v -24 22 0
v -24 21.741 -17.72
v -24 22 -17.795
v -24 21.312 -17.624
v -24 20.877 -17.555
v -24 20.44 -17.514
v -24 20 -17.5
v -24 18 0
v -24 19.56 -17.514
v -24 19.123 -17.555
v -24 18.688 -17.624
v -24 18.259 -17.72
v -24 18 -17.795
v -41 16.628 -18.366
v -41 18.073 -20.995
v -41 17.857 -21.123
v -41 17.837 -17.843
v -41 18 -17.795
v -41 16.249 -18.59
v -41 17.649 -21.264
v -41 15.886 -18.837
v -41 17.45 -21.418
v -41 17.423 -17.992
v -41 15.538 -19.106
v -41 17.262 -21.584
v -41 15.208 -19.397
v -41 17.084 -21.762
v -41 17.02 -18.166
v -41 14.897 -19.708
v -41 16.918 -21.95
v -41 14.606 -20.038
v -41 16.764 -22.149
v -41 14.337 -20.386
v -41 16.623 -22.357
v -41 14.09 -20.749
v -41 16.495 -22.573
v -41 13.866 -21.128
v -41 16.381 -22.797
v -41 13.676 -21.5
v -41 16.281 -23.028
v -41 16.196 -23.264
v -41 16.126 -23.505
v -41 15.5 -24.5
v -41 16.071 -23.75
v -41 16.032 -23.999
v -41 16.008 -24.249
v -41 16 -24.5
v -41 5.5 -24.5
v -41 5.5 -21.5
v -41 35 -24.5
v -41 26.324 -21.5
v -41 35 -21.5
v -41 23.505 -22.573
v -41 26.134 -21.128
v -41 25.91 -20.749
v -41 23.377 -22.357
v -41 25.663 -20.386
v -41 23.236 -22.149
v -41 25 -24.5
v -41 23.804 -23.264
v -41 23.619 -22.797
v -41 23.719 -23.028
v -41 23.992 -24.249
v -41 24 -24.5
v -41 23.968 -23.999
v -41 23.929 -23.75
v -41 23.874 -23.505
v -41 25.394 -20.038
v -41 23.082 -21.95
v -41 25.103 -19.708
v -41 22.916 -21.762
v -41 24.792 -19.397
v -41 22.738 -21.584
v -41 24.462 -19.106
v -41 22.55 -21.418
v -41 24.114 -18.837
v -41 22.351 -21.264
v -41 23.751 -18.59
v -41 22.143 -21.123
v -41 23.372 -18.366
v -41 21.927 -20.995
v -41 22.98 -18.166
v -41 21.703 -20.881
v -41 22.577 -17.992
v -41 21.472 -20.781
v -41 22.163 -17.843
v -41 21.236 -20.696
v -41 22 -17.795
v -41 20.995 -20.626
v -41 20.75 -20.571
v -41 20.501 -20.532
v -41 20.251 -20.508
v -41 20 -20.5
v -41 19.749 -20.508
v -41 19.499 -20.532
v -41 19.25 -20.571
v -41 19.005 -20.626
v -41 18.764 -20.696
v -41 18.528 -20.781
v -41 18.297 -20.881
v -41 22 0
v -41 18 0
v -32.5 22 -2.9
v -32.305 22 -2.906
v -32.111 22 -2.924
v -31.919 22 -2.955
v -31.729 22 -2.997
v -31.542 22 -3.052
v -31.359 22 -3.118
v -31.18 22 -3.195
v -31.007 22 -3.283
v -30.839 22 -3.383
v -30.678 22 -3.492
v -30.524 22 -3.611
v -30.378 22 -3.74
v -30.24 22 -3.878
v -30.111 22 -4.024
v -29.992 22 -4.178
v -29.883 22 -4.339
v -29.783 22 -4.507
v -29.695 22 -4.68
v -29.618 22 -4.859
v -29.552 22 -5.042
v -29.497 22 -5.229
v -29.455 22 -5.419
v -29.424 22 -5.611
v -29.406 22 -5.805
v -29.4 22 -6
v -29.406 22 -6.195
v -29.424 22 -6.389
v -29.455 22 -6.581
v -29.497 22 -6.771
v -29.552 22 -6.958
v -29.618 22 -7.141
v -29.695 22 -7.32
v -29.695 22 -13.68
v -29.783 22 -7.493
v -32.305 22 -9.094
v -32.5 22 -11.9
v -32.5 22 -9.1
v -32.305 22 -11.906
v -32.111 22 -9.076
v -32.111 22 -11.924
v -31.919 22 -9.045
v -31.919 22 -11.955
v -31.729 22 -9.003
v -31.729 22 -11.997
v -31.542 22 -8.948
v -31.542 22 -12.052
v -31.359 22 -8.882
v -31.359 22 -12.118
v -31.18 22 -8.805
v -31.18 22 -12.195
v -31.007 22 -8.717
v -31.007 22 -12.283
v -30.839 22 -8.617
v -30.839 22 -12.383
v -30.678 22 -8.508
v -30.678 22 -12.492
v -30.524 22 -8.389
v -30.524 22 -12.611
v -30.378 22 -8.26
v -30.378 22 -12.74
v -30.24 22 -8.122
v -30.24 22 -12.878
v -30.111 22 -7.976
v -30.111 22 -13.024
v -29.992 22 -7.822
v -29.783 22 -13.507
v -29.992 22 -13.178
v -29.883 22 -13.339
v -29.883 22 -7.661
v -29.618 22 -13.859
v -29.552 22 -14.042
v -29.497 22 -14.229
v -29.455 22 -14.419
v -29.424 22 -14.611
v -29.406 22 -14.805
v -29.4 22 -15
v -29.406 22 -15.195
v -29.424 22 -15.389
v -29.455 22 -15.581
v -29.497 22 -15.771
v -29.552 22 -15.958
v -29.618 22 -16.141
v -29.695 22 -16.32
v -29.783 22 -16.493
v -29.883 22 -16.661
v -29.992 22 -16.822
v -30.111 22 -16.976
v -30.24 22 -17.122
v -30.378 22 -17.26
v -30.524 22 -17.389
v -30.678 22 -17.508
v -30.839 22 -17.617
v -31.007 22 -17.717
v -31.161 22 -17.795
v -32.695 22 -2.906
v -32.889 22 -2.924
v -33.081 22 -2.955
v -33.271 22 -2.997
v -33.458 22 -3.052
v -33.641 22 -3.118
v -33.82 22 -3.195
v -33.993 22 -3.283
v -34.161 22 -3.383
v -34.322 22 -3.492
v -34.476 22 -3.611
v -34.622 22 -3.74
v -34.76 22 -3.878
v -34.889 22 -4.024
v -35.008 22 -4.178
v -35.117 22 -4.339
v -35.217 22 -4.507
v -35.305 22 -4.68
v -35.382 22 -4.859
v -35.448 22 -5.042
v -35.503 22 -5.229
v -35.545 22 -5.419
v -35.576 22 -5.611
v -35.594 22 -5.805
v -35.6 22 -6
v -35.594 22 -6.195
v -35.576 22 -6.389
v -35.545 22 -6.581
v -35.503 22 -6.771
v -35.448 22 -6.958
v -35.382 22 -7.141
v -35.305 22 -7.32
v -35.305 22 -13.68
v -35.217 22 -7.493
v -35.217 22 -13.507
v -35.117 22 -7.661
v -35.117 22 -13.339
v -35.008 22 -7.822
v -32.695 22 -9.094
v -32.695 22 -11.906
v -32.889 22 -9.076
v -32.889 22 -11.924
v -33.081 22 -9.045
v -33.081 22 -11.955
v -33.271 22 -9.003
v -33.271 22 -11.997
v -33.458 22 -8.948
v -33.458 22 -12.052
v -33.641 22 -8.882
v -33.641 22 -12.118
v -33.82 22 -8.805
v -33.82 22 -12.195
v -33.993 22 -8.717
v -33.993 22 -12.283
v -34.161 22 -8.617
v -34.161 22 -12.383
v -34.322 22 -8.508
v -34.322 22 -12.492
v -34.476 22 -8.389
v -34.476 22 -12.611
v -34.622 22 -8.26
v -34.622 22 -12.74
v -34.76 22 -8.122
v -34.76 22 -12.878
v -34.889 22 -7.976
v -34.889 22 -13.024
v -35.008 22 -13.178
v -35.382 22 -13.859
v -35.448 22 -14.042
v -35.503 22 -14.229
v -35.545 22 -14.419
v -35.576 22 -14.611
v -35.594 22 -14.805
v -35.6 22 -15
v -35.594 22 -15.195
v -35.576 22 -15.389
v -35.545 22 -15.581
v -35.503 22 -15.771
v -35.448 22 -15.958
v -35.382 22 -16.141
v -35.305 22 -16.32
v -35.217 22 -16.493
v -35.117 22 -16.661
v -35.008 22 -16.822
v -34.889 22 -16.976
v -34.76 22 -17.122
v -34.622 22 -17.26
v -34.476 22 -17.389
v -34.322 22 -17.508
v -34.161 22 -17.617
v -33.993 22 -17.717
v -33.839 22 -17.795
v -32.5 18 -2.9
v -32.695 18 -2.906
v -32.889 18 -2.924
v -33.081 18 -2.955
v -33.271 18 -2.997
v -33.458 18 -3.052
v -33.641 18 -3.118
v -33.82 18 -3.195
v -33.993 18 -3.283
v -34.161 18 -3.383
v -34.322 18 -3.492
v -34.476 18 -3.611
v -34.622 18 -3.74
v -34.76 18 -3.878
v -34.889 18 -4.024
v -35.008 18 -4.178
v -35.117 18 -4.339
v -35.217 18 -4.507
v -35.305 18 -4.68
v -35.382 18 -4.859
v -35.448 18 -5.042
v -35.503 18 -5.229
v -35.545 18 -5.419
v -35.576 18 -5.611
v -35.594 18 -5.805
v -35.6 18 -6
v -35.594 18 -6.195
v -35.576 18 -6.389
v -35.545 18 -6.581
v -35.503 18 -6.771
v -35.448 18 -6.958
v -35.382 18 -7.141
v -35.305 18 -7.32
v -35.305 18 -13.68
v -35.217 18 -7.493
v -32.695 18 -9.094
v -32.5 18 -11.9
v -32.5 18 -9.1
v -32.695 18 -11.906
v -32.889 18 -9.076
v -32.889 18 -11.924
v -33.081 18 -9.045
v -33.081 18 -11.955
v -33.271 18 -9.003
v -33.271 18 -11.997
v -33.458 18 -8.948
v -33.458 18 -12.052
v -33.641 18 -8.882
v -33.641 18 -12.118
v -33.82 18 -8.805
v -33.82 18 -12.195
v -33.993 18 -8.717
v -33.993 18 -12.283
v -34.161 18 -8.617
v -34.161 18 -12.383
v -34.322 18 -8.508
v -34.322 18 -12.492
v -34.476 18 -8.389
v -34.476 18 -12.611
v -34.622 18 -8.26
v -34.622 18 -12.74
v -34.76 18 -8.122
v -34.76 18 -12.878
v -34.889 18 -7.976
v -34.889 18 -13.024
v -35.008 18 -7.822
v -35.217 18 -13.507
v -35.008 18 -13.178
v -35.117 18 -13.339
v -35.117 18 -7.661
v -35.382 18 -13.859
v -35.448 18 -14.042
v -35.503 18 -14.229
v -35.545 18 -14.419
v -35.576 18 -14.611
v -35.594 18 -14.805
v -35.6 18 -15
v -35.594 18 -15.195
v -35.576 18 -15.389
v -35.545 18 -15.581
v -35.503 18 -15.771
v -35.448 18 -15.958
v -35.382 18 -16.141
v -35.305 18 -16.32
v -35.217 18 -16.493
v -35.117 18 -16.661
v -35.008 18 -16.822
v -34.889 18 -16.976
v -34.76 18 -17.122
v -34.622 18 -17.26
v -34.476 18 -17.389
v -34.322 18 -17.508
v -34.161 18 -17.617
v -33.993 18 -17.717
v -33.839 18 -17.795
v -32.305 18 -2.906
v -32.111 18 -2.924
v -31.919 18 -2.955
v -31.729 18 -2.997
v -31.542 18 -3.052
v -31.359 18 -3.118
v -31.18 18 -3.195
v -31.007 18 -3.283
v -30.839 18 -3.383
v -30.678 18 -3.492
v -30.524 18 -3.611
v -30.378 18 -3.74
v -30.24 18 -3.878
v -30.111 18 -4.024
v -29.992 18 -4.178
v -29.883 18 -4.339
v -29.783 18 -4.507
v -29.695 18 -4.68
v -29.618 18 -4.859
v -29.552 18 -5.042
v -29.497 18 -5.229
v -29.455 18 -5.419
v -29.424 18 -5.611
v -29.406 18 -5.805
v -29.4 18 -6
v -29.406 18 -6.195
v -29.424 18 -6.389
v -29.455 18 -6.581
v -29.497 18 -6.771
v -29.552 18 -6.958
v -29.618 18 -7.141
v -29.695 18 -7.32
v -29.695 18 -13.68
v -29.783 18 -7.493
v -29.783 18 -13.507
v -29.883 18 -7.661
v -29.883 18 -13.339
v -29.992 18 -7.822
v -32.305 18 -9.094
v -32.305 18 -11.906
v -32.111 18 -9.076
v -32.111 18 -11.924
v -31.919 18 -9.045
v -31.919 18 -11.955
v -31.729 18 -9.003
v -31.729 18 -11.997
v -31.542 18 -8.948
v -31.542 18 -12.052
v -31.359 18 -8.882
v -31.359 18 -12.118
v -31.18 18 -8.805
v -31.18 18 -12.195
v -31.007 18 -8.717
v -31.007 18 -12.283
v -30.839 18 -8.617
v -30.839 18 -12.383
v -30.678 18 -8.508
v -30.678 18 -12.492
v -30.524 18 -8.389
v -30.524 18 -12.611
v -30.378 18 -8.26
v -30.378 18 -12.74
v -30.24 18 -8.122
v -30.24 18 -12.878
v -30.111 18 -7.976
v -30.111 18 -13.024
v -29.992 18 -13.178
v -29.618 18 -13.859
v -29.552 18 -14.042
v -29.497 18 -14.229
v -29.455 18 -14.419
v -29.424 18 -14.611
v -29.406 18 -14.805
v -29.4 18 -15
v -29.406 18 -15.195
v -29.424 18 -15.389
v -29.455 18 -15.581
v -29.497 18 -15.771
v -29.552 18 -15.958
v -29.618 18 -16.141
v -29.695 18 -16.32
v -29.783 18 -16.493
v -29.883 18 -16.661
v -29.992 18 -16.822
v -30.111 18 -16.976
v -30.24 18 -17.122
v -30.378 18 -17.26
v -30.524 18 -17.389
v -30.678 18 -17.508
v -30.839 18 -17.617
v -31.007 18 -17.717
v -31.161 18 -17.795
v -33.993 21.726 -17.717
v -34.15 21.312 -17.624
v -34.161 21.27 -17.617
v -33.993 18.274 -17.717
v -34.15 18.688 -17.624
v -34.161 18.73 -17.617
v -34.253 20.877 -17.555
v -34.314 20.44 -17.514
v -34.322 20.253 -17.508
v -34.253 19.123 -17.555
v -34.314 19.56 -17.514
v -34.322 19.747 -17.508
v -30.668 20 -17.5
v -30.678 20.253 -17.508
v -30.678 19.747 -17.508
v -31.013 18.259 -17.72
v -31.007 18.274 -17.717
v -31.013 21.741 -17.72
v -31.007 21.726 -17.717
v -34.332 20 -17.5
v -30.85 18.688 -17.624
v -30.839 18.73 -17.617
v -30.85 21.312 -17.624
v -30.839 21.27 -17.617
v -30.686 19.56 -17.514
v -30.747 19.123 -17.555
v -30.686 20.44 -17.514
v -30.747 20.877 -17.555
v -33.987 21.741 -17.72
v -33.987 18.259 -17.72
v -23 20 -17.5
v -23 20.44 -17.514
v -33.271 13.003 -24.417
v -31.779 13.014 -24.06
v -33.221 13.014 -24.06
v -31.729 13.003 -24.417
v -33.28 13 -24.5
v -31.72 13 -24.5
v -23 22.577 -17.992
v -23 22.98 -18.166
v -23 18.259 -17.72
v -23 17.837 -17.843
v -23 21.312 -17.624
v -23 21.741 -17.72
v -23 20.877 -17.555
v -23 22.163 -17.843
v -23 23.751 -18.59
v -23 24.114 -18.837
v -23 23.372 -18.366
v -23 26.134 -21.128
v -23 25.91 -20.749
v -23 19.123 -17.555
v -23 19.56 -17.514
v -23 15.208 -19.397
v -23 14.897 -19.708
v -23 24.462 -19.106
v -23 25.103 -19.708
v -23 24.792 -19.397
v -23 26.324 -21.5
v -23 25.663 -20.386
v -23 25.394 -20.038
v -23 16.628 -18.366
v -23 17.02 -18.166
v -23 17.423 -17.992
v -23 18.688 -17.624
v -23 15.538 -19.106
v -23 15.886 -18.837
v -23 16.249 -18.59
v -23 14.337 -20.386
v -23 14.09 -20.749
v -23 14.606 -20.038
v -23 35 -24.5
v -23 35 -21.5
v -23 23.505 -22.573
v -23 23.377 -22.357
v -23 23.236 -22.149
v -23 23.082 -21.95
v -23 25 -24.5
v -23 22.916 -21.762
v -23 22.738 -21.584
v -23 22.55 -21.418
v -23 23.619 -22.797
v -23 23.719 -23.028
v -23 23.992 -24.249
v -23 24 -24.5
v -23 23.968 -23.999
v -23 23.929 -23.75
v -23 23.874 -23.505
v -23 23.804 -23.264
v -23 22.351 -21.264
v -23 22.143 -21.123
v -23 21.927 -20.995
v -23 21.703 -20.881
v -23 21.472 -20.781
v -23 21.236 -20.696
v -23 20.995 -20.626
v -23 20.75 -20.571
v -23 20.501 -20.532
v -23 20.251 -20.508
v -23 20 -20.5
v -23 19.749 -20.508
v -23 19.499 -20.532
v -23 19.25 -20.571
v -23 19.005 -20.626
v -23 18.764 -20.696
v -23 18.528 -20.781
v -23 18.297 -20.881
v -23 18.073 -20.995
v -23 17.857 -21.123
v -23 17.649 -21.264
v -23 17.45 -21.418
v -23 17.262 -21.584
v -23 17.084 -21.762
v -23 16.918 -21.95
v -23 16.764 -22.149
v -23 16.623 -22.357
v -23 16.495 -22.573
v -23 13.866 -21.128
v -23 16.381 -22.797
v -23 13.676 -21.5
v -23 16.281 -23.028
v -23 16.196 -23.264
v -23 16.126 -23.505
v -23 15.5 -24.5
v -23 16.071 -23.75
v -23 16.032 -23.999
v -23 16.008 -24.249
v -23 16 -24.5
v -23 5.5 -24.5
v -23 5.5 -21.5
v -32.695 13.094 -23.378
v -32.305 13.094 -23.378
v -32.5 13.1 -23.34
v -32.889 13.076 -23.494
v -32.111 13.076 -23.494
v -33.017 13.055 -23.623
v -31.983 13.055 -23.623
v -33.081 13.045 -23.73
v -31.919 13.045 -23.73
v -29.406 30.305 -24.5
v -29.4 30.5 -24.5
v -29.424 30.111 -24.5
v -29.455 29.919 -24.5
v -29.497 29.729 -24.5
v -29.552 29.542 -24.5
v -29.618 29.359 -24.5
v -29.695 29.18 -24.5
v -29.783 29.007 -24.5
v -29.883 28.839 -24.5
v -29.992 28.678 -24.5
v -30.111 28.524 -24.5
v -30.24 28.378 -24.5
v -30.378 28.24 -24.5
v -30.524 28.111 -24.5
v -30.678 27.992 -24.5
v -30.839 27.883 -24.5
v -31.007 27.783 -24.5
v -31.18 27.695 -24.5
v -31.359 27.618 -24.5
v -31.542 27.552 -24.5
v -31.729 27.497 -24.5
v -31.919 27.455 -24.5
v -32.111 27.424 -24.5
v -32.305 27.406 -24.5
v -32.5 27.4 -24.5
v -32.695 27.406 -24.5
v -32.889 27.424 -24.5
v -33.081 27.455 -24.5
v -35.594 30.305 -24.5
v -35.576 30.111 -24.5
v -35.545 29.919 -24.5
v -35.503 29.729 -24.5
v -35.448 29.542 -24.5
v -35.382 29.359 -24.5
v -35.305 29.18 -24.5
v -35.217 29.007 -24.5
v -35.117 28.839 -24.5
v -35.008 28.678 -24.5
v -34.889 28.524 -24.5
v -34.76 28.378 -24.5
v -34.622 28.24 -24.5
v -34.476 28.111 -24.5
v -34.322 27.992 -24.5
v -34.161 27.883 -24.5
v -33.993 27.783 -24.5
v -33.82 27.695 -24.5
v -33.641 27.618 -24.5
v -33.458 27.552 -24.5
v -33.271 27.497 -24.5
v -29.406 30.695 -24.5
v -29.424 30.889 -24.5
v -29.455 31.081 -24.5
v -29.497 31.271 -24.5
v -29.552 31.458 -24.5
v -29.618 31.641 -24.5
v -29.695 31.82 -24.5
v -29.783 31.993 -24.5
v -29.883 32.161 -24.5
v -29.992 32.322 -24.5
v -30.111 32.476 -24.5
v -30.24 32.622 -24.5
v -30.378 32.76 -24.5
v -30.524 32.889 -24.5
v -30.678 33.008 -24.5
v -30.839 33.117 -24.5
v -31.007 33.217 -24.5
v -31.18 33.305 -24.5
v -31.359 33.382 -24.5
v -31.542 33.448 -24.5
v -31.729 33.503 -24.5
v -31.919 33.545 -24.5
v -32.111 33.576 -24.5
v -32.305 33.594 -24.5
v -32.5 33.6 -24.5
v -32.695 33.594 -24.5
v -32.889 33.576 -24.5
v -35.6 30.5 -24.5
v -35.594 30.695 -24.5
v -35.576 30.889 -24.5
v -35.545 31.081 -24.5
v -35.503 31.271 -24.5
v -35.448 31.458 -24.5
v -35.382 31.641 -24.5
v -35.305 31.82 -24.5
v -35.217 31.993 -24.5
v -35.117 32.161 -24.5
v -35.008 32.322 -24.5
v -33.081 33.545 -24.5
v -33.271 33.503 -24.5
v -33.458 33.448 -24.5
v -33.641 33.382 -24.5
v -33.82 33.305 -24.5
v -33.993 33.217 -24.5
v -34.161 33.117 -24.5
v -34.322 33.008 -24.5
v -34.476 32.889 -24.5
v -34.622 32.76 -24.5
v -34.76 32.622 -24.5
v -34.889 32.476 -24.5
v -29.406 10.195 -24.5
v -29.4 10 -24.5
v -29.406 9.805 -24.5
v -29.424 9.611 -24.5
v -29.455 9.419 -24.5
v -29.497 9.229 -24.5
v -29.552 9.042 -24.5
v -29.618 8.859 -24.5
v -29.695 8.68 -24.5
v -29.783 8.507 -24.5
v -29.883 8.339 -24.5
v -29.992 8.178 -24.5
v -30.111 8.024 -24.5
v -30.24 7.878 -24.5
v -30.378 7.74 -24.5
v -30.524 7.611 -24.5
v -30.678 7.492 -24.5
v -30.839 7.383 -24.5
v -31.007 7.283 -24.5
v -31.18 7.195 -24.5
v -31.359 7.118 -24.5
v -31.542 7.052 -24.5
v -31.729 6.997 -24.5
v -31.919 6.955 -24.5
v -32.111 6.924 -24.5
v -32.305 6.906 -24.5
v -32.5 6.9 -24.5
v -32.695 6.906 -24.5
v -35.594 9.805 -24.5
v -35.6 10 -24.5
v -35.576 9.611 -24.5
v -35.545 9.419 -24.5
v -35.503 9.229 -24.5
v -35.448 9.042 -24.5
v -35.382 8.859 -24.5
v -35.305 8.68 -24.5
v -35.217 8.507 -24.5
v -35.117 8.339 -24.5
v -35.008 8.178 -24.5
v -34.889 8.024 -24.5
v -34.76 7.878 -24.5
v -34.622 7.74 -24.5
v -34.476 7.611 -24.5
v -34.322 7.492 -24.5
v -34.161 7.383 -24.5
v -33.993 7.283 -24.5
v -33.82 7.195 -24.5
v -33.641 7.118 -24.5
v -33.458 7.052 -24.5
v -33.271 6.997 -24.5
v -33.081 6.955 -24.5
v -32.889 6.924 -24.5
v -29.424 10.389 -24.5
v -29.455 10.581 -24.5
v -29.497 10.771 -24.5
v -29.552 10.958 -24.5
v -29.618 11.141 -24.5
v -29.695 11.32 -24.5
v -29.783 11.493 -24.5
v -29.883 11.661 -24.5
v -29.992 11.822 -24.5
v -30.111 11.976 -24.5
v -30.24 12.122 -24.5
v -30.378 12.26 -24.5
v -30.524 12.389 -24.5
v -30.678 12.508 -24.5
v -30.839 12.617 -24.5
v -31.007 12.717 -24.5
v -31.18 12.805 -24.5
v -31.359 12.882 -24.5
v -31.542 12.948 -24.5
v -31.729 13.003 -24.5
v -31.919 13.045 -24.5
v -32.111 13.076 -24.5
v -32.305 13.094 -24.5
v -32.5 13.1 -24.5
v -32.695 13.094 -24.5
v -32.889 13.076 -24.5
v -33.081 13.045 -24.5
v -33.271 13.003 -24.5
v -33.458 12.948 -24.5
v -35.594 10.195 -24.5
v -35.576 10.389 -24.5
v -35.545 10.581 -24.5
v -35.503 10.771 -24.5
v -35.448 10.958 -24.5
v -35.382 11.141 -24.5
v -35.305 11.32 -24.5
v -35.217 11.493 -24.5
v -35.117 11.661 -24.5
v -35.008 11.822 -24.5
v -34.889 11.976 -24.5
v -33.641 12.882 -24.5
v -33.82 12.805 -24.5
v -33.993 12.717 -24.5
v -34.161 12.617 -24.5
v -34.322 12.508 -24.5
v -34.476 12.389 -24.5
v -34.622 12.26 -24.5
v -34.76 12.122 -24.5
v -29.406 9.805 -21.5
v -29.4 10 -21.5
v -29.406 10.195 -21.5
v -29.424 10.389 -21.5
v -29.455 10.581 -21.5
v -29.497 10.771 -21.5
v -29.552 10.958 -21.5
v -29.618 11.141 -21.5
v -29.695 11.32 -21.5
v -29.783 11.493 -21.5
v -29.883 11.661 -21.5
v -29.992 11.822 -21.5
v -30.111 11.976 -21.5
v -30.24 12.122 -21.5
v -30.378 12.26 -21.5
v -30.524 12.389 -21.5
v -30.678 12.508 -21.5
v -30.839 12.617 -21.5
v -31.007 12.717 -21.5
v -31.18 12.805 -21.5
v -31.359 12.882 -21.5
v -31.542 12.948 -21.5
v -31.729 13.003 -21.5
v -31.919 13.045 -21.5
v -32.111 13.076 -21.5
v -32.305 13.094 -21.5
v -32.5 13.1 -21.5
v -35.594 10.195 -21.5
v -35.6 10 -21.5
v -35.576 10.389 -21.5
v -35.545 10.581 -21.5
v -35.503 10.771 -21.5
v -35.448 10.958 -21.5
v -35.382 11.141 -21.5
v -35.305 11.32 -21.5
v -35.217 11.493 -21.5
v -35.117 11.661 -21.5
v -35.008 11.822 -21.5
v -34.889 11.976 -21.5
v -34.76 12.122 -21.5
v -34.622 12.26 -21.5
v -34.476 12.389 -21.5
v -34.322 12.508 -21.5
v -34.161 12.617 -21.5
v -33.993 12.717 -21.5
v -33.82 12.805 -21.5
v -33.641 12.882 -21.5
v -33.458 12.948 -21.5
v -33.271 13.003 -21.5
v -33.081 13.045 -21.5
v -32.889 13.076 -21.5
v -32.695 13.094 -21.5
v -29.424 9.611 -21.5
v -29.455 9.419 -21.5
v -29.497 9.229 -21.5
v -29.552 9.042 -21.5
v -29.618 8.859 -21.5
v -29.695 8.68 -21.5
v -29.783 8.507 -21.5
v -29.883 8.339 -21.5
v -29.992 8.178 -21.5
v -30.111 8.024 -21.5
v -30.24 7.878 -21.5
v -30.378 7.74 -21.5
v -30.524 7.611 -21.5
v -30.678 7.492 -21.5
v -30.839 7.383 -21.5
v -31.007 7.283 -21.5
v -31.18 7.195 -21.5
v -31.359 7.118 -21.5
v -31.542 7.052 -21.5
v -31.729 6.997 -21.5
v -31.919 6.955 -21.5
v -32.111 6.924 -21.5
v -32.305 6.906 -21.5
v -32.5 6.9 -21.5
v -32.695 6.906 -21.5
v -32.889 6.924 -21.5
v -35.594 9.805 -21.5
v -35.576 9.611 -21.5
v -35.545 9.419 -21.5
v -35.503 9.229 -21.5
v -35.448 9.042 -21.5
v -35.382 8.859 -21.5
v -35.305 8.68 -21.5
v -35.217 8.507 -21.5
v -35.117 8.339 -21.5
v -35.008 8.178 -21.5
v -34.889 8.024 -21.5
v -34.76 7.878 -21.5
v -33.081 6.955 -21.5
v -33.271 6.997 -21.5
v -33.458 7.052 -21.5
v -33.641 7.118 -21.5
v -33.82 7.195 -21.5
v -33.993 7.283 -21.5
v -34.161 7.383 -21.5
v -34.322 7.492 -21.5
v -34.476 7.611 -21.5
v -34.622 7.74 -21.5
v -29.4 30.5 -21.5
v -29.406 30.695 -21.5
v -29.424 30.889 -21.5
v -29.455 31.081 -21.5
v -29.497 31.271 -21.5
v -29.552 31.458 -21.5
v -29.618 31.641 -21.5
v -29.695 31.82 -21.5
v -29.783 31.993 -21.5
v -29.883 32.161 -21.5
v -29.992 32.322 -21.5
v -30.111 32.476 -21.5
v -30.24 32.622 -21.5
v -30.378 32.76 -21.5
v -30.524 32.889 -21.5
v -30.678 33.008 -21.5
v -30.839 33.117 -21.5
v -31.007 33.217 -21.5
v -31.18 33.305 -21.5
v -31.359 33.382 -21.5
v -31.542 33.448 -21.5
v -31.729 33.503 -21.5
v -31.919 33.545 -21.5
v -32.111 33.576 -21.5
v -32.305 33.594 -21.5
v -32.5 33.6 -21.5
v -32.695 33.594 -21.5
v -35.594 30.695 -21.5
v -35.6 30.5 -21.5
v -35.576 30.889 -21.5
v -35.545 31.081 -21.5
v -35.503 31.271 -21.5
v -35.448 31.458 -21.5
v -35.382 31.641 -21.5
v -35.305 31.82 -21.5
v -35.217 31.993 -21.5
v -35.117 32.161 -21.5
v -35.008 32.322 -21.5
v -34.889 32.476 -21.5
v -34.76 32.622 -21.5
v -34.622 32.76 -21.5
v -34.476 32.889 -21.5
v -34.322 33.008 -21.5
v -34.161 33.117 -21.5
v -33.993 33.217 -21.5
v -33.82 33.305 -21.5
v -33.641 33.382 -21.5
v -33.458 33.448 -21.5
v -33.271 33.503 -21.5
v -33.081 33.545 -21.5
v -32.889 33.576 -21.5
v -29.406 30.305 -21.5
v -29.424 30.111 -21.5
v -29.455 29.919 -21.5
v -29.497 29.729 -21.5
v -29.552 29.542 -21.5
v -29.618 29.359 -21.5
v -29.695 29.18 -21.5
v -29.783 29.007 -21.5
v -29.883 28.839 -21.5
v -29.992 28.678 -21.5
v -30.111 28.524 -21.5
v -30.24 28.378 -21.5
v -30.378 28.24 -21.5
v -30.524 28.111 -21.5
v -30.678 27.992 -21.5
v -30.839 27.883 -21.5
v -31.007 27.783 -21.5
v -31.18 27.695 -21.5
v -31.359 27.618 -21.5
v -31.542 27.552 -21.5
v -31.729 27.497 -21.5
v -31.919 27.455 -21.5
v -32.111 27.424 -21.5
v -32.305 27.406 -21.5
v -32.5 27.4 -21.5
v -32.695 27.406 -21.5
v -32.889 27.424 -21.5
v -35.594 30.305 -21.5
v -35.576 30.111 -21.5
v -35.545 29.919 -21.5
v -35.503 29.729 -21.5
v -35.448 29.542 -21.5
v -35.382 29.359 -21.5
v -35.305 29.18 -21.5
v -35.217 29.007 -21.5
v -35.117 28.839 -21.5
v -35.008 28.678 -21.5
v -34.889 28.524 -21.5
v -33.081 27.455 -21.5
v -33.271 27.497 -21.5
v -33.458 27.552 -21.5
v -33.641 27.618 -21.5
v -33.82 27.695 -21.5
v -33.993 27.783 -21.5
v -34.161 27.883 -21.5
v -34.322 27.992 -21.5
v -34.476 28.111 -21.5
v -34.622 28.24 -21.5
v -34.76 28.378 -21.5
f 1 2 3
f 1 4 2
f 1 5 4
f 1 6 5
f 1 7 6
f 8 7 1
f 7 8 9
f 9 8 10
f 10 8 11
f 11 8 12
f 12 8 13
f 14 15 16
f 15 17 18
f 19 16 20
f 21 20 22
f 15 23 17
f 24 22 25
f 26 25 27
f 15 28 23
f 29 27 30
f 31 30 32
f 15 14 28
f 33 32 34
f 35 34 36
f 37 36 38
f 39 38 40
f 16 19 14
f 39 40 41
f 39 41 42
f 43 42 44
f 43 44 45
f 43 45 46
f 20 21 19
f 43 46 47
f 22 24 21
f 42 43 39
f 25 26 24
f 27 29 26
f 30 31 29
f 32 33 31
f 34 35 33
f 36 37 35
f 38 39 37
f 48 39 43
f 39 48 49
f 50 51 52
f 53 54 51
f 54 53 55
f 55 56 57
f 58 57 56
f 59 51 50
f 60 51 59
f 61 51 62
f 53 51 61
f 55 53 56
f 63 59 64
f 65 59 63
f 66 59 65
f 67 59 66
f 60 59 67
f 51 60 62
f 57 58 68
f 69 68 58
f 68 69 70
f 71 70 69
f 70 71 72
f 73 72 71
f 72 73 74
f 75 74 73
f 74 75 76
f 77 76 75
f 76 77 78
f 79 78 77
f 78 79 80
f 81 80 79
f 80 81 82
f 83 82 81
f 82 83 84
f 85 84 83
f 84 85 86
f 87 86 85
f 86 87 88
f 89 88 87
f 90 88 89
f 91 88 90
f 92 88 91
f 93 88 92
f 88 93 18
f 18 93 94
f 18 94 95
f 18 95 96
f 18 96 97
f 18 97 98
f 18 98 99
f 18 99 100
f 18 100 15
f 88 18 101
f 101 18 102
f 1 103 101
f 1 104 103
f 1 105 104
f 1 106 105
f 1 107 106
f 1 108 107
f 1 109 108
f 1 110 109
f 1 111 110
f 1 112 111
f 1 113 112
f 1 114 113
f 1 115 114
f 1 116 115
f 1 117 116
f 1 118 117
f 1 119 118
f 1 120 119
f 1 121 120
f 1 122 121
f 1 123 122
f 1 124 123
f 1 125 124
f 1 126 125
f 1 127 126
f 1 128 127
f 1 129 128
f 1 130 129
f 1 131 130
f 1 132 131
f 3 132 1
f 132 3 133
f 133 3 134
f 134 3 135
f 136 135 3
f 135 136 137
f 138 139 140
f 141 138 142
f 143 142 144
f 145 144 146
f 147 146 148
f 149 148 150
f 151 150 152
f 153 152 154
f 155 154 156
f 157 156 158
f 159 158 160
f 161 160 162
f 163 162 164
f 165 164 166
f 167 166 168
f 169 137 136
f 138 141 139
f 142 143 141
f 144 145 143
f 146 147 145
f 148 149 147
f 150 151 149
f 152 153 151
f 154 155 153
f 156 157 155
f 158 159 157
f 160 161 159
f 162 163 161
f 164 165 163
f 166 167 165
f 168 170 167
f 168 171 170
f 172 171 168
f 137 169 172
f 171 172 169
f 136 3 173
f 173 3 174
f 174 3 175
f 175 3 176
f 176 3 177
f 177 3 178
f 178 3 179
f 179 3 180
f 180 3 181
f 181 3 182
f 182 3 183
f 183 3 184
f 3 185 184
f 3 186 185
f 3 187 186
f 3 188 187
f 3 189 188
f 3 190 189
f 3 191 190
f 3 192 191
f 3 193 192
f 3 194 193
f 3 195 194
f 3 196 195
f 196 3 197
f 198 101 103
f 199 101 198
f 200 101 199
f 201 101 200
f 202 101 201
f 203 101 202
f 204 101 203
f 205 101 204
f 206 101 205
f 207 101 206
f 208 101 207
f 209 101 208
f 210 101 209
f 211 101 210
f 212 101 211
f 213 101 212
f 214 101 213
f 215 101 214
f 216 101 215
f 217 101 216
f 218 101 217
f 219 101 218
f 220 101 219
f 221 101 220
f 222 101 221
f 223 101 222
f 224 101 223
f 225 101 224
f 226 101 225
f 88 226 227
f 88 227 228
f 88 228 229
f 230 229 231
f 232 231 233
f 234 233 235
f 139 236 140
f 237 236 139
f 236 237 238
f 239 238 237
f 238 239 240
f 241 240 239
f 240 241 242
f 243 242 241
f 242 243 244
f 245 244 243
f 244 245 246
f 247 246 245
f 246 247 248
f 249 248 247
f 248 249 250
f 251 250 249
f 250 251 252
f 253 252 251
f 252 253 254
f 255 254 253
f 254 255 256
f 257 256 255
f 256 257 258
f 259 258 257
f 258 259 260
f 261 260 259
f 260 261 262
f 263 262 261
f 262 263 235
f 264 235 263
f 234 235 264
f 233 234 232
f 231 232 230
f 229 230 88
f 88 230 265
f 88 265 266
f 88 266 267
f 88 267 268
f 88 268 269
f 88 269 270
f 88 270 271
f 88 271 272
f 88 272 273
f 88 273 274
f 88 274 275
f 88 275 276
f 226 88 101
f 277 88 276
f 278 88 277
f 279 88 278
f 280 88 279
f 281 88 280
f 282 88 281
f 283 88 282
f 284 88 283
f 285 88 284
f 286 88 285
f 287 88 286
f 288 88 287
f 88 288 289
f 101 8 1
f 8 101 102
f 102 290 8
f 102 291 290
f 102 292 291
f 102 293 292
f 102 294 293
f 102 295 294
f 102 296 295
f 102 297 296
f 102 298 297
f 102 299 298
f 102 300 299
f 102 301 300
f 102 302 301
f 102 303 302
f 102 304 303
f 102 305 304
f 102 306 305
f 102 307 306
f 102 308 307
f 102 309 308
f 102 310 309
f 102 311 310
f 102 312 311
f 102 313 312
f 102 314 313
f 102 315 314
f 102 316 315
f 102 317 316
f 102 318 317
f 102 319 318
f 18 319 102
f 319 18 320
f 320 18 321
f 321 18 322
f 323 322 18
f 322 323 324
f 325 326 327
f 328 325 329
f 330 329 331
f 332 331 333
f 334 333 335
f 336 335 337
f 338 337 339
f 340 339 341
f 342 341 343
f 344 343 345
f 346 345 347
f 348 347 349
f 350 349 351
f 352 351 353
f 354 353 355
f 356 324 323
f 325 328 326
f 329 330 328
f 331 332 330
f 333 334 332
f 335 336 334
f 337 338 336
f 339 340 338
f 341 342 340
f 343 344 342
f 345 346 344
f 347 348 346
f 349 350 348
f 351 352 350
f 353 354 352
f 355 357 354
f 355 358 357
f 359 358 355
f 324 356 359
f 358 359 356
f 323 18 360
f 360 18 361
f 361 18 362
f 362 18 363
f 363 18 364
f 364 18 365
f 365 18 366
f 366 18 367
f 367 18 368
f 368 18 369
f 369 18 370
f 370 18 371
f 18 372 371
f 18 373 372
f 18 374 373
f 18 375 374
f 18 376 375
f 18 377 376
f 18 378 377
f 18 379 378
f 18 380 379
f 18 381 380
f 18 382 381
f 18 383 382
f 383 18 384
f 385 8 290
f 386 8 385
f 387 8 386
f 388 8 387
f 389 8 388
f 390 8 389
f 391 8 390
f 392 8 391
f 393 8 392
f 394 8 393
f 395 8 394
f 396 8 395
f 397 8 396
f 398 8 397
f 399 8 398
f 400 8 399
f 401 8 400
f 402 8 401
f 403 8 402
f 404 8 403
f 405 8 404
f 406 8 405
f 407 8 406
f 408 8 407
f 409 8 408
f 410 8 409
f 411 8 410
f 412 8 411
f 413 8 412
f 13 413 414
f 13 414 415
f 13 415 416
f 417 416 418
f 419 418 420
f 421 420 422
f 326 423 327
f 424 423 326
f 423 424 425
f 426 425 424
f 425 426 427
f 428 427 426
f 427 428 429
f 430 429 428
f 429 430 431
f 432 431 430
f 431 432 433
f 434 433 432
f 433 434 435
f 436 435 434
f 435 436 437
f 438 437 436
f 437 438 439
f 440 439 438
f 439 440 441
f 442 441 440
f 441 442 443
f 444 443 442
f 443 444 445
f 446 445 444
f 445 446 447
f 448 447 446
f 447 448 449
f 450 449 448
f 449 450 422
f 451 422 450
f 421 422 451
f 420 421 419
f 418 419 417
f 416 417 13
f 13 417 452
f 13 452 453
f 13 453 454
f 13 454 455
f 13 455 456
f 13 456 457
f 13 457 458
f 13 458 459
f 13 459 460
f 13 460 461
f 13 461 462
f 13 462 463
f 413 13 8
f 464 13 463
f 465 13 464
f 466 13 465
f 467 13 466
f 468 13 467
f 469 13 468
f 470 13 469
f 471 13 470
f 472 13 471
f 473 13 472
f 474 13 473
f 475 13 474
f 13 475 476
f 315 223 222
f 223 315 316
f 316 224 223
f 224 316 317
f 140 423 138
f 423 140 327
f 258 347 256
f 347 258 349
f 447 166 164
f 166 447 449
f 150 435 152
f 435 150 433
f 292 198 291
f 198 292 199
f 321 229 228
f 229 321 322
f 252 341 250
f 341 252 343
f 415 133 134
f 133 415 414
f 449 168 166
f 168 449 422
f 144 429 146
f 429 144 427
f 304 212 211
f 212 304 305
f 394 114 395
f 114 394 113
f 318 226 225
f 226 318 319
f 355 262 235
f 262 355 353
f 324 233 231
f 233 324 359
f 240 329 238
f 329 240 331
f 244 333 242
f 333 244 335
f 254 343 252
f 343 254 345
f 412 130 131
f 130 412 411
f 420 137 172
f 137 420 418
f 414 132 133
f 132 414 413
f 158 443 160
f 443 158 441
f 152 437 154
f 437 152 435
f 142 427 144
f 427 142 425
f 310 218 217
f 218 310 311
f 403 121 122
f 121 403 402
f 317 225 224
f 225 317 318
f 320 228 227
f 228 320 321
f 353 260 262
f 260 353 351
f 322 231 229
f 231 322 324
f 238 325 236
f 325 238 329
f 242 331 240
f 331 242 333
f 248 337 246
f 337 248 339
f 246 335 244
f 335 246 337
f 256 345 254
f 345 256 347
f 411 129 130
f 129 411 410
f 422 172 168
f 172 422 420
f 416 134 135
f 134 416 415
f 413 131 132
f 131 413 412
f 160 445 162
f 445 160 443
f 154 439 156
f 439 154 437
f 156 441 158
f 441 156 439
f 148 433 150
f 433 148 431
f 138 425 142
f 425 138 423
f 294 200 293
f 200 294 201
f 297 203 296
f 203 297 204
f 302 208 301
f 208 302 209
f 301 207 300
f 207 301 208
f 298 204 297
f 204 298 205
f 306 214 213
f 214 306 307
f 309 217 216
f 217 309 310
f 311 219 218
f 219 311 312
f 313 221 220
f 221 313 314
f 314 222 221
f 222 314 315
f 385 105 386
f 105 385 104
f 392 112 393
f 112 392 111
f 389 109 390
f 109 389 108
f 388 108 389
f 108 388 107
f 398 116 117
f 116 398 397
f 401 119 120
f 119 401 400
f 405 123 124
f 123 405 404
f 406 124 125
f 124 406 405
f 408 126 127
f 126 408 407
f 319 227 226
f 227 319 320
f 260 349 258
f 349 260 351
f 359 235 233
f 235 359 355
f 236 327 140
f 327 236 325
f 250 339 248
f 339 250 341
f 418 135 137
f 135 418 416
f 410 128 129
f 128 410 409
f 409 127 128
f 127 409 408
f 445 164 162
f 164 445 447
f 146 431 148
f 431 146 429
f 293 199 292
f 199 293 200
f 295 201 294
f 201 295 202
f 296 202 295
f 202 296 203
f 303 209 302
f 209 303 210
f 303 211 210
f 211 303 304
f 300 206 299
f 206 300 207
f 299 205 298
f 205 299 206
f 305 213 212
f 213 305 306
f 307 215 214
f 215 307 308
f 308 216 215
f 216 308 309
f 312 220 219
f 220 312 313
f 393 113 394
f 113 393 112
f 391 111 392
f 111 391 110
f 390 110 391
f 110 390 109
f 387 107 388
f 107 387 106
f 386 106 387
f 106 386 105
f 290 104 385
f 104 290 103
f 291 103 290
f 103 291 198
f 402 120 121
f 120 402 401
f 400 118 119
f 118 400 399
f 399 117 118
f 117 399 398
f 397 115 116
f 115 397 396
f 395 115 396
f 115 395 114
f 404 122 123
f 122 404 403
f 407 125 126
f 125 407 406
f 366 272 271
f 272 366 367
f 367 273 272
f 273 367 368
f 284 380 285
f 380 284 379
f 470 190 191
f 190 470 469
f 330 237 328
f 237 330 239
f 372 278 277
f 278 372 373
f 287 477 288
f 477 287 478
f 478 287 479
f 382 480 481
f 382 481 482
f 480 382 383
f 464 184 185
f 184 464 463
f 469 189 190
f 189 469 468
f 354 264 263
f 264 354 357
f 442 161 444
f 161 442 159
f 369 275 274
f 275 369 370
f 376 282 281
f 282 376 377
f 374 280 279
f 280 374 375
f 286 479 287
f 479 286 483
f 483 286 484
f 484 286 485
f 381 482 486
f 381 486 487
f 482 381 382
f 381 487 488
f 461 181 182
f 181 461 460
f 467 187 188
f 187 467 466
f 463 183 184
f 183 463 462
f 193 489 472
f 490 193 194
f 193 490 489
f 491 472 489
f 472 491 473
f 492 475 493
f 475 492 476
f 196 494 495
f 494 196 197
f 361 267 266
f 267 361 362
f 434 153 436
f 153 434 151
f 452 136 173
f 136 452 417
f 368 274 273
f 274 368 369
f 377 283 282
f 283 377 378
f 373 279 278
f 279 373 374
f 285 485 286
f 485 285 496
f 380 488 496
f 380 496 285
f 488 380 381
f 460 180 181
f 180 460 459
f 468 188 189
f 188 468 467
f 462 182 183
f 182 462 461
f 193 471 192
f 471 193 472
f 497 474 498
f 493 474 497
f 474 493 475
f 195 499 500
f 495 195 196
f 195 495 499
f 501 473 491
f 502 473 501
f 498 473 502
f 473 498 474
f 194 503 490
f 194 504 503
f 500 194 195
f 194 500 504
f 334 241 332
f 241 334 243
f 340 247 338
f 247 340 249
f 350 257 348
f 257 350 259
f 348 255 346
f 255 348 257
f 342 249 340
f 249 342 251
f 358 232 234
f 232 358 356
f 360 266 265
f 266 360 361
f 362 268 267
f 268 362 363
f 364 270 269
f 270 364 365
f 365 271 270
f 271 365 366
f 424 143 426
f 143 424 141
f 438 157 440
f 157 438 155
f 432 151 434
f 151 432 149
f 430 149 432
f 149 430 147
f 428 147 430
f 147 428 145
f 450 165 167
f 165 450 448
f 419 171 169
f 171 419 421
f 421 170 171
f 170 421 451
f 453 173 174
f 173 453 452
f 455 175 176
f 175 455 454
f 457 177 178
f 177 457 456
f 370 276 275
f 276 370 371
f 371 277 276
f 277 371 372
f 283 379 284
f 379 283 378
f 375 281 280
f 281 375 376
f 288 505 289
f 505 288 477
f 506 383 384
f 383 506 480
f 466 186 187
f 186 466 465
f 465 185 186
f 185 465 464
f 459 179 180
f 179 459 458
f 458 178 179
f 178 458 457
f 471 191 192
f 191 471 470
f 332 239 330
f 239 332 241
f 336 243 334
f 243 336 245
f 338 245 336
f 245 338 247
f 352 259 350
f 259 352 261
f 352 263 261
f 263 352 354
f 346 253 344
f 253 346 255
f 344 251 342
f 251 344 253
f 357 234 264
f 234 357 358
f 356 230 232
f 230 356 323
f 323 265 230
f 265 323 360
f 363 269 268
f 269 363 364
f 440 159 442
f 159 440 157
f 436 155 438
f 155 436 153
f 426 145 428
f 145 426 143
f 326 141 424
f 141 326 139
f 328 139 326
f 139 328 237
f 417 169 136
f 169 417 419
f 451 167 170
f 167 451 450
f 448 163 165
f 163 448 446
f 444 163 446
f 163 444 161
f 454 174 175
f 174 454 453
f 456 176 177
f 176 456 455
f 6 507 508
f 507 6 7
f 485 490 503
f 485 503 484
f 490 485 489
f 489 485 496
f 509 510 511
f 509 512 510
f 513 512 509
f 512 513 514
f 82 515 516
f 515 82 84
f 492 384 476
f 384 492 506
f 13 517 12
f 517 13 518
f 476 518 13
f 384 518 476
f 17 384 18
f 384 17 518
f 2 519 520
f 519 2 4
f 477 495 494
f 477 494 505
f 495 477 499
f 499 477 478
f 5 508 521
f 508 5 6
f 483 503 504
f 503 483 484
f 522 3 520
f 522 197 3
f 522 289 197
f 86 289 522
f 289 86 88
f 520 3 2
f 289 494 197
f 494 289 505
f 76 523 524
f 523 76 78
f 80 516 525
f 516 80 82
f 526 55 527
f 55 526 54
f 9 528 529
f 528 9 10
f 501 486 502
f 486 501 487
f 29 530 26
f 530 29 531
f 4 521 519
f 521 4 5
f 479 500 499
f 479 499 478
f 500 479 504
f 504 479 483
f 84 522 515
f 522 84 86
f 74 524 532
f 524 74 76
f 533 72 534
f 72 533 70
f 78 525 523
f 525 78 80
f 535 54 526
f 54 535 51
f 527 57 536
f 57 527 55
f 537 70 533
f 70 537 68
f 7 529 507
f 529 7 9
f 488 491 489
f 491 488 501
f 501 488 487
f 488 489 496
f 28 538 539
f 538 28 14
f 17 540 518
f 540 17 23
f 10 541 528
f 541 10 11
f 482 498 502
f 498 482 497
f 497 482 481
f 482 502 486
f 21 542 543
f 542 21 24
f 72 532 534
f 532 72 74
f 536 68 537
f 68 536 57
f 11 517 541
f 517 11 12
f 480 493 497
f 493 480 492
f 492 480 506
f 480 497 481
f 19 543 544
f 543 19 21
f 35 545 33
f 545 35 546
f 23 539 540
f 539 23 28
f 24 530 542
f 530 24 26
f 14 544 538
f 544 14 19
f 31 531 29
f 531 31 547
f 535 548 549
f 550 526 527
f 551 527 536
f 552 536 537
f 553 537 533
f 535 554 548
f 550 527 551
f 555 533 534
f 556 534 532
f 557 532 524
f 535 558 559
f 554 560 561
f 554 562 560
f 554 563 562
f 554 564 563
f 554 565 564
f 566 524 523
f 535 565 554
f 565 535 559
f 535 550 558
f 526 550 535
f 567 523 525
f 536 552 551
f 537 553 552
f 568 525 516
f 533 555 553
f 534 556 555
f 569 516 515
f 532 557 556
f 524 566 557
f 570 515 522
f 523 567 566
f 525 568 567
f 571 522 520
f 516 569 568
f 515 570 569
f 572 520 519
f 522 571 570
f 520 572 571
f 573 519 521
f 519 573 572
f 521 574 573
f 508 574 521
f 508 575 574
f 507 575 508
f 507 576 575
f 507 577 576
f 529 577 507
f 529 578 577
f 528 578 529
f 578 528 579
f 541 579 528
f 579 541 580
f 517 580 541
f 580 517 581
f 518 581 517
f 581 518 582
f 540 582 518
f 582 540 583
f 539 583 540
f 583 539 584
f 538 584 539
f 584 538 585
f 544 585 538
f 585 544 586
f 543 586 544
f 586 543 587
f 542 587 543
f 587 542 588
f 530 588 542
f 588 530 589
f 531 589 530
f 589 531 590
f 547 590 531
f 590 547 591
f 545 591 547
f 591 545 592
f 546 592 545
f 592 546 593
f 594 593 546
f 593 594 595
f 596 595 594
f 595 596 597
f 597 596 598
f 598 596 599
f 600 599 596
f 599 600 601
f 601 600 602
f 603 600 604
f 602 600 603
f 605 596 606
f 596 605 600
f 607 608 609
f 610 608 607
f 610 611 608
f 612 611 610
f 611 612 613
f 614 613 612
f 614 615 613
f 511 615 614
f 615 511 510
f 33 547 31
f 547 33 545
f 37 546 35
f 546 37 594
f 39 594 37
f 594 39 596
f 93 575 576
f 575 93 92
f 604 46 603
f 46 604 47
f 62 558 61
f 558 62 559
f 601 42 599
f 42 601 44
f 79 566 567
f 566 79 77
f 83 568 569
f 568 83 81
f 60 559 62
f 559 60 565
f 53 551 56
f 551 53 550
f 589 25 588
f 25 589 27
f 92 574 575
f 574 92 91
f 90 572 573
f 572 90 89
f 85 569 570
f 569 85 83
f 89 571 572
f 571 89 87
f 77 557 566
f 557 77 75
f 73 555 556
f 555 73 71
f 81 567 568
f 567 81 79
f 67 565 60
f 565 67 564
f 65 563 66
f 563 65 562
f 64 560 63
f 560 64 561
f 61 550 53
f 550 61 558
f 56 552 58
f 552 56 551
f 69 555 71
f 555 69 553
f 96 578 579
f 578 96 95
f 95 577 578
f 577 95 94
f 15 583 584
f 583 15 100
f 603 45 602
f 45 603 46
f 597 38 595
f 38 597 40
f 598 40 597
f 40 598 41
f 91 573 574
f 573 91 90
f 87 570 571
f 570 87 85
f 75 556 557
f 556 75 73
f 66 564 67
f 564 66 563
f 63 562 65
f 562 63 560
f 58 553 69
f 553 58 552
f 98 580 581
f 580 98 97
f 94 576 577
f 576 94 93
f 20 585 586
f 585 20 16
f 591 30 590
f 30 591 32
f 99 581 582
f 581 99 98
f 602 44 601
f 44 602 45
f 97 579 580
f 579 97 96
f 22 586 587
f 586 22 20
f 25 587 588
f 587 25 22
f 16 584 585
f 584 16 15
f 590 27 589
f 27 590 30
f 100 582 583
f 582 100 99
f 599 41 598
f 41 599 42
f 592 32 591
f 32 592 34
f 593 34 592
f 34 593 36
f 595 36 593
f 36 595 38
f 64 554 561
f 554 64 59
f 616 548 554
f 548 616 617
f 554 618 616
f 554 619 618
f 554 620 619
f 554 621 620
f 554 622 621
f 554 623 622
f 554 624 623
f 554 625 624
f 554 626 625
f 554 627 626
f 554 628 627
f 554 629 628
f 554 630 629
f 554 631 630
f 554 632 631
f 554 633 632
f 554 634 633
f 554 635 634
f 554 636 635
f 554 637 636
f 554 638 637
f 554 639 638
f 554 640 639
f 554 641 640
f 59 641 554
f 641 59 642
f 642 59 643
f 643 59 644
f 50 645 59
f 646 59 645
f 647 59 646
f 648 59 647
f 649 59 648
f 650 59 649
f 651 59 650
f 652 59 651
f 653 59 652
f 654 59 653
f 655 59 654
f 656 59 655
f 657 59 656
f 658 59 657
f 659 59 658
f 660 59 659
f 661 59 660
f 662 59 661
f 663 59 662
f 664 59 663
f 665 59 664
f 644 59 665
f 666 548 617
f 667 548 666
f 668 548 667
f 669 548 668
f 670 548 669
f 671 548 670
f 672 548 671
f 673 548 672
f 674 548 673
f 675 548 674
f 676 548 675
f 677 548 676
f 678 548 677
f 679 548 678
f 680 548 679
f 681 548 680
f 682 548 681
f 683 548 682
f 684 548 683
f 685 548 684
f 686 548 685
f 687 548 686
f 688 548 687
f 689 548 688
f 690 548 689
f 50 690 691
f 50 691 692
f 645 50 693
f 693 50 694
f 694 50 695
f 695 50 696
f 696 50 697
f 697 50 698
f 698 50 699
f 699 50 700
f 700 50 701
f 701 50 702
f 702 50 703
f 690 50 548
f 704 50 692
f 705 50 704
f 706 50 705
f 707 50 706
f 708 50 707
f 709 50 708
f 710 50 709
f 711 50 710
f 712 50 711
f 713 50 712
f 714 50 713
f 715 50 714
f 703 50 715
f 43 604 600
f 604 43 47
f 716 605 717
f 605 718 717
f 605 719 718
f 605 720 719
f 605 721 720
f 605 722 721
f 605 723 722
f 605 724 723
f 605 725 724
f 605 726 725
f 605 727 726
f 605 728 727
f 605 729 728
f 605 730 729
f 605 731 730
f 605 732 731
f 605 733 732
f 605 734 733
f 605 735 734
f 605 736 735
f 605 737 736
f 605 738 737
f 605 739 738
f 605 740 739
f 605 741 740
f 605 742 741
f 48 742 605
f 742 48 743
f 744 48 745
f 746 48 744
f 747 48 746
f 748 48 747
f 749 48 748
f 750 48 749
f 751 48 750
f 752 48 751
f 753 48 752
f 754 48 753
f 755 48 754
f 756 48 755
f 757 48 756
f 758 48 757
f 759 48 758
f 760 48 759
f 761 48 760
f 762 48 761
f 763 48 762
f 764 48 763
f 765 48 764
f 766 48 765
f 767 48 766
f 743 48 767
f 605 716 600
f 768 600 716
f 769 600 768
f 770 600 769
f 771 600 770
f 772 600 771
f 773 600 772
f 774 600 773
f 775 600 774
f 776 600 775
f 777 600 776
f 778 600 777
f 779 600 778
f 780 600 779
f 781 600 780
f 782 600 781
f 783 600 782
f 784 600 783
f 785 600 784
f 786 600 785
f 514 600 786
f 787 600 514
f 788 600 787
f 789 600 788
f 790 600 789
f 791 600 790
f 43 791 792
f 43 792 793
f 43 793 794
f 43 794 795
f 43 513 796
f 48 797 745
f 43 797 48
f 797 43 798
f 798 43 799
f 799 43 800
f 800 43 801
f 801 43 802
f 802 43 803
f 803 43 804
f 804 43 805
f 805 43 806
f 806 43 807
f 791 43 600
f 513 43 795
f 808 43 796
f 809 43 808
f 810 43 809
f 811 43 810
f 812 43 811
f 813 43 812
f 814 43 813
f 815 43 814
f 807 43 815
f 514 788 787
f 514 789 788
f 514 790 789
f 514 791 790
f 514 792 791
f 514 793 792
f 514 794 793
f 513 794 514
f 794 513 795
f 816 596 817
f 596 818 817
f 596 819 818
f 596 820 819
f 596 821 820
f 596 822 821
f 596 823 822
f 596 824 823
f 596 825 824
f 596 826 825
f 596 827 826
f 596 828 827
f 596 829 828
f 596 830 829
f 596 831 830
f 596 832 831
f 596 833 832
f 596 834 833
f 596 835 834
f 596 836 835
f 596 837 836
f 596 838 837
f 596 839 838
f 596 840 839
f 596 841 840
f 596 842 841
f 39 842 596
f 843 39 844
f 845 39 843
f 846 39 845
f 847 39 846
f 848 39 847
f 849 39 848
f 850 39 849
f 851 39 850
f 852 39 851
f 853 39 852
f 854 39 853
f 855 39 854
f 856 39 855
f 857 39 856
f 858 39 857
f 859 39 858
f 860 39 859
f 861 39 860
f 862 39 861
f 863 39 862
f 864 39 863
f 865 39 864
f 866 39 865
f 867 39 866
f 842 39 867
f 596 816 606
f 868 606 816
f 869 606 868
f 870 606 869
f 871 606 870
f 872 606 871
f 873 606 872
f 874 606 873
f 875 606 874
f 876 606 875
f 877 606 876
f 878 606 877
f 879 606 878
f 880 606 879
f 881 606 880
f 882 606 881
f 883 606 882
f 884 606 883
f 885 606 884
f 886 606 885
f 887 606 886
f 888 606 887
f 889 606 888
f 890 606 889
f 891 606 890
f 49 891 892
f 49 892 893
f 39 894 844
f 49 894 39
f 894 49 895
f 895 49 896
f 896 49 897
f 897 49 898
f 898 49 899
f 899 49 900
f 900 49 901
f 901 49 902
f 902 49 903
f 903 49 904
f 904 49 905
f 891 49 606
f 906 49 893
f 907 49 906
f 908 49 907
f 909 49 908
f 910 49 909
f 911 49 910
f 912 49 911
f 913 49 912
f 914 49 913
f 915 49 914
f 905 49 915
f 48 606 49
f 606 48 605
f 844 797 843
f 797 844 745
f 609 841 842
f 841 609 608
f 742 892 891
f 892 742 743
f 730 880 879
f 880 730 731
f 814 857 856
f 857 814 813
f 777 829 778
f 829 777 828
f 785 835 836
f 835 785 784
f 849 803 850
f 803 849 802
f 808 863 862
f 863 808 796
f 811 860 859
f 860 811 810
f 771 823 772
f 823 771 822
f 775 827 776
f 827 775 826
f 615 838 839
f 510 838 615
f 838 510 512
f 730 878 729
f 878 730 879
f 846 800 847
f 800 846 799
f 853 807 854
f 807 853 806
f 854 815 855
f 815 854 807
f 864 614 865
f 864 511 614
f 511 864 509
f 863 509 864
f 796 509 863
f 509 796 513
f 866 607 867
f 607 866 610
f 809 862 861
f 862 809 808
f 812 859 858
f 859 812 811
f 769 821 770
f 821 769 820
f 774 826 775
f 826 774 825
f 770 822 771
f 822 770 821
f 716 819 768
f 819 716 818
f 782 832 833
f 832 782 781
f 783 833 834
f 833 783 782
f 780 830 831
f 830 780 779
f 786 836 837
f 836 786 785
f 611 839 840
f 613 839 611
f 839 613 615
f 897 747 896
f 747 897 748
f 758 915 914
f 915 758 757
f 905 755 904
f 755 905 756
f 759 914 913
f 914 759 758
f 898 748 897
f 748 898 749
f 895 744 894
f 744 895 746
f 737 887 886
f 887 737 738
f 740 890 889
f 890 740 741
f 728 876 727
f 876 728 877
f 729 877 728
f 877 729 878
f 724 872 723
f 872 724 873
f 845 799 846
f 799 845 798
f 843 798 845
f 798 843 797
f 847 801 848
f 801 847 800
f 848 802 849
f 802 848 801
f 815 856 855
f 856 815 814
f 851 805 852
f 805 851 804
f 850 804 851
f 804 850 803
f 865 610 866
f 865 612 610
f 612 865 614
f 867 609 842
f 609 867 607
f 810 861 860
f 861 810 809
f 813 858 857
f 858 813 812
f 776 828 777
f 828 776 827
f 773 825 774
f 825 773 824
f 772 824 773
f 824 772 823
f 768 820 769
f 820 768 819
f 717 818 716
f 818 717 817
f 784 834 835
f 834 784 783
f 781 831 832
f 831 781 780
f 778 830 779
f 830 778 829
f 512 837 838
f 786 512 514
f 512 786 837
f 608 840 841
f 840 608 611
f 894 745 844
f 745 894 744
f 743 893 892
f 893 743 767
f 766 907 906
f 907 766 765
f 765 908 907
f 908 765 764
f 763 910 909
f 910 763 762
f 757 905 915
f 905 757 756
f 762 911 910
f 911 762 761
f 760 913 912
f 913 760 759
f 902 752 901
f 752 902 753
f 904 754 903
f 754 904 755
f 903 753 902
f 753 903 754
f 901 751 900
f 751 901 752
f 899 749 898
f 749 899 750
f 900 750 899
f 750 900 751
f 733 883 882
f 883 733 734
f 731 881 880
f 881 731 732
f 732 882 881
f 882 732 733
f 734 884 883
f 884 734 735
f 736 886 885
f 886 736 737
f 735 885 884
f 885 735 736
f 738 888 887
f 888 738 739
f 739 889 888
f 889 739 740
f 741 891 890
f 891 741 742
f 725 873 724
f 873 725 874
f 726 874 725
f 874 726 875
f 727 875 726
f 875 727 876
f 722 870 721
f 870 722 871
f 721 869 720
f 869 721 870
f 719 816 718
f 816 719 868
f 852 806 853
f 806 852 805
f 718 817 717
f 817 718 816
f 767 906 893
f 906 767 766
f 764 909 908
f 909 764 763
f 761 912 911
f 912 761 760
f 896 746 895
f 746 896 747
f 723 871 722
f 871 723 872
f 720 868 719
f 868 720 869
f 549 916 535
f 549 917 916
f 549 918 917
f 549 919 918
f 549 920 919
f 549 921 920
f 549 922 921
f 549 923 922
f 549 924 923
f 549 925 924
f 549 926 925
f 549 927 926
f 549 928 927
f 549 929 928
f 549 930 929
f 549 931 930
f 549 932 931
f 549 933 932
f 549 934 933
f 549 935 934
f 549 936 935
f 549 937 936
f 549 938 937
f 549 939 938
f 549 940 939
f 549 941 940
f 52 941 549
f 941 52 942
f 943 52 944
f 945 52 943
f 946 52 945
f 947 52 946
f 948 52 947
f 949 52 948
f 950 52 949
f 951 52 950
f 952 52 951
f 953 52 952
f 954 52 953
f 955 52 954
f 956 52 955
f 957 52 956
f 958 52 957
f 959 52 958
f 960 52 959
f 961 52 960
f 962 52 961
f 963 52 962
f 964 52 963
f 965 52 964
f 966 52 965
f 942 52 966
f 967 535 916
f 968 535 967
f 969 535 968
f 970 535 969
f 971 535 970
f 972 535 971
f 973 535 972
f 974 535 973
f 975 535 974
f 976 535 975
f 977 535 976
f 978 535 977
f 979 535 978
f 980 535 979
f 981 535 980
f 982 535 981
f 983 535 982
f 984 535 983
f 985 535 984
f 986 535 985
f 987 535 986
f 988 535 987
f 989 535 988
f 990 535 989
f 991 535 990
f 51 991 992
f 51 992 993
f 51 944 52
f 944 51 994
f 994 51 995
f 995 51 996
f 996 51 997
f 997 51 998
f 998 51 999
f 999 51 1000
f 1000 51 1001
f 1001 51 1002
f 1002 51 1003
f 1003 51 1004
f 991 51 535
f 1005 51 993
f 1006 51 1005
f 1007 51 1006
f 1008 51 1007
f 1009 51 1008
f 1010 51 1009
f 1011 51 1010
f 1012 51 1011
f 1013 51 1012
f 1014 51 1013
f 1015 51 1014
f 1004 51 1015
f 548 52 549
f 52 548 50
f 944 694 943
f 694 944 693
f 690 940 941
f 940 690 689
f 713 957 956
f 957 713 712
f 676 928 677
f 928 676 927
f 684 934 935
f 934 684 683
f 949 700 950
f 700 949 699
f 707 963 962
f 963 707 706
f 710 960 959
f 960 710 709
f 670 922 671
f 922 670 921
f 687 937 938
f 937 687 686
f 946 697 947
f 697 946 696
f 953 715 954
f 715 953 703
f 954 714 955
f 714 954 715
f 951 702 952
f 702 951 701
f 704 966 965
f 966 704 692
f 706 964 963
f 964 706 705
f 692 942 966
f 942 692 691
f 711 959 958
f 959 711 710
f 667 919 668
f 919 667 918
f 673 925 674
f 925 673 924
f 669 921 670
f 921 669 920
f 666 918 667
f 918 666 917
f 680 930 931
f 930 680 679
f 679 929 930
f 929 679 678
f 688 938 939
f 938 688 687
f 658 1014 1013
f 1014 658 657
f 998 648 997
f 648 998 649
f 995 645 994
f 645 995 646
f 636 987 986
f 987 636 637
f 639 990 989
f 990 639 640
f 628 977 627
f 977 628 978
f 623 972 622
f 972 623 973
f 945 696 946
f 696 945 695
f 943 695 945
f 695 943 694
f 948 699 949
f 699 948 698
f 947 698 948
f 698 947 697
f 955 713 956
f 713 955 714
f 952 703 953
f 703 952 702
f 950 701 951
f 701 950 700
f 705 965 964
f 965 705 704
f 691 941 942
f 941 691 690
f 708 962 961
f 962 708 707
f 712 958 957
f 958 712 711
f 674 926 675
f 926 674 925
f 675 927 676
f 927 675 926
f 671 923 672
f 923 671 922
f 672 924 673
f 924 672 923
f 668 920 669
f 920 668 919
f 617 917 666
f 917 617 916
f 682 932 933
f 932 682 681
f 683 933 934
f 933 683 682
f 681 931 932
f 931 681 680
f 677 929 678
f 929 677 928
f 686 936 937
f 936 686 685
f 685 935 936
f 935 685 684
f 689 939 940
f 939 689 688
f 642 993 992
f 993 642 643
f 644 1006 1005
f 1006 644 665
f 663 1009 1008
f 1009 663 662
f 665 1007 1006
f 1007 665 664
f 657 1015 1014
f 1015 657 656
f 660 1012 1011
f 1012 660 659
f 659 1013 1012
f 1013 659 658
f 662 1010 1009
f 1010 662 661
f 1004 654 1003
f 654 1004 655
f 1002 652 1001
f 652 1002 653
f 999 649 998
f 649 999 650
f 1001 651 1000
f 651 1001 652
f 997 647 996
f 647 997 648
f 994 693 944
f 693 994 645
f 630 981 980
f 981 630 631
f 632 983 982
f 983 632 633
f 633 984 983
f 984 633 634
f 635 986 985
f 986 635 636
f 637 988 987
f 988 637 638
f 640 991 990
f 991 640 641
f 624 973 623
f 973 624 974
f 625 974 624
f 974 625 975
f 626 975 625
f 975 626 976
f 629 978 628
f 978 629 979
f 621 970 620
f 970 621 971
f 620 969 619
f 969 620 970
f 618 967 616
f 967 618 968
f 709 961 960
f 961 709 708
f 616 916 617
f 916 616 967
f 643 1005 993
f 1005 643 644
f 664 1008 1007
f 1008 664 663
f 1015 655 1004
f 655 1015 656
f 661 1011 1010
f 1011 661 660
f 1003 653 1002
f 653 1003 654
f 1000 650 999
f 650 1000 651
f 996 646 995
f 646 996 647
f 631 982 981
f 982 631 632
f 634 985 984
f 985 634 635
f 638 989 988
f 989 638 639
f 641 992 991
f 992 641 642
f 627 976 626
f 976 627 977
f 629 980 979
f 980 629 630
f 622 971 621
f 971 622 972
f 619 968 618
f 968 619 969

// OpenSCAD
rotate([0,180,0])translate([0,0,-30])
union(){//apoio superior
   difference(){translate([32.5,20,40])
    // cubo principal
        cube([17,4,20], center=true);
    // aberturas para os pregos
 #translate([32.5,22,36])rotate(a=[90,0,0])
        cylinder(h=4, r=3.1, $fn=100);
 #translate([32.5,22,45])rotate(a=[90,0,0])
        cylinder(h=4, r=3.1, $fn=100);}
//
        
// Concha de suporte inferior
difference(){translate([23,20,54.5])rotate(a=[0,90,0])
        cylinder(h=18, r=7, $fn=100);
    
// Abertura interior    
#translate([23,20,54.5])rotate(a=[0,90,0])
        cylinder(h=18, r=4, $fn=100);
    
// corte de separação das conchas
#translate([23,12.5,54.5]) cube([18,14.5,7]);
}
//

// Retângulo ligado a concha inferior
{
// lado perto da origem
difference(){translate([23,5.5,51.5]) cube([18,10,3]);
    
    // abertura para o prego
#translate([32.5,10,51.5]) cylinder(h=3, r=3.1, $fn=100);
}
//

//lado longe da origem
difference(){translate([23,25,51.5]) cube([18,10,3]);
    
    // abertura para o prego
#translate([32.5,30.5,51.5]) cylinder(h=3, r=3.1, $fn=100);
}
}
//
}
